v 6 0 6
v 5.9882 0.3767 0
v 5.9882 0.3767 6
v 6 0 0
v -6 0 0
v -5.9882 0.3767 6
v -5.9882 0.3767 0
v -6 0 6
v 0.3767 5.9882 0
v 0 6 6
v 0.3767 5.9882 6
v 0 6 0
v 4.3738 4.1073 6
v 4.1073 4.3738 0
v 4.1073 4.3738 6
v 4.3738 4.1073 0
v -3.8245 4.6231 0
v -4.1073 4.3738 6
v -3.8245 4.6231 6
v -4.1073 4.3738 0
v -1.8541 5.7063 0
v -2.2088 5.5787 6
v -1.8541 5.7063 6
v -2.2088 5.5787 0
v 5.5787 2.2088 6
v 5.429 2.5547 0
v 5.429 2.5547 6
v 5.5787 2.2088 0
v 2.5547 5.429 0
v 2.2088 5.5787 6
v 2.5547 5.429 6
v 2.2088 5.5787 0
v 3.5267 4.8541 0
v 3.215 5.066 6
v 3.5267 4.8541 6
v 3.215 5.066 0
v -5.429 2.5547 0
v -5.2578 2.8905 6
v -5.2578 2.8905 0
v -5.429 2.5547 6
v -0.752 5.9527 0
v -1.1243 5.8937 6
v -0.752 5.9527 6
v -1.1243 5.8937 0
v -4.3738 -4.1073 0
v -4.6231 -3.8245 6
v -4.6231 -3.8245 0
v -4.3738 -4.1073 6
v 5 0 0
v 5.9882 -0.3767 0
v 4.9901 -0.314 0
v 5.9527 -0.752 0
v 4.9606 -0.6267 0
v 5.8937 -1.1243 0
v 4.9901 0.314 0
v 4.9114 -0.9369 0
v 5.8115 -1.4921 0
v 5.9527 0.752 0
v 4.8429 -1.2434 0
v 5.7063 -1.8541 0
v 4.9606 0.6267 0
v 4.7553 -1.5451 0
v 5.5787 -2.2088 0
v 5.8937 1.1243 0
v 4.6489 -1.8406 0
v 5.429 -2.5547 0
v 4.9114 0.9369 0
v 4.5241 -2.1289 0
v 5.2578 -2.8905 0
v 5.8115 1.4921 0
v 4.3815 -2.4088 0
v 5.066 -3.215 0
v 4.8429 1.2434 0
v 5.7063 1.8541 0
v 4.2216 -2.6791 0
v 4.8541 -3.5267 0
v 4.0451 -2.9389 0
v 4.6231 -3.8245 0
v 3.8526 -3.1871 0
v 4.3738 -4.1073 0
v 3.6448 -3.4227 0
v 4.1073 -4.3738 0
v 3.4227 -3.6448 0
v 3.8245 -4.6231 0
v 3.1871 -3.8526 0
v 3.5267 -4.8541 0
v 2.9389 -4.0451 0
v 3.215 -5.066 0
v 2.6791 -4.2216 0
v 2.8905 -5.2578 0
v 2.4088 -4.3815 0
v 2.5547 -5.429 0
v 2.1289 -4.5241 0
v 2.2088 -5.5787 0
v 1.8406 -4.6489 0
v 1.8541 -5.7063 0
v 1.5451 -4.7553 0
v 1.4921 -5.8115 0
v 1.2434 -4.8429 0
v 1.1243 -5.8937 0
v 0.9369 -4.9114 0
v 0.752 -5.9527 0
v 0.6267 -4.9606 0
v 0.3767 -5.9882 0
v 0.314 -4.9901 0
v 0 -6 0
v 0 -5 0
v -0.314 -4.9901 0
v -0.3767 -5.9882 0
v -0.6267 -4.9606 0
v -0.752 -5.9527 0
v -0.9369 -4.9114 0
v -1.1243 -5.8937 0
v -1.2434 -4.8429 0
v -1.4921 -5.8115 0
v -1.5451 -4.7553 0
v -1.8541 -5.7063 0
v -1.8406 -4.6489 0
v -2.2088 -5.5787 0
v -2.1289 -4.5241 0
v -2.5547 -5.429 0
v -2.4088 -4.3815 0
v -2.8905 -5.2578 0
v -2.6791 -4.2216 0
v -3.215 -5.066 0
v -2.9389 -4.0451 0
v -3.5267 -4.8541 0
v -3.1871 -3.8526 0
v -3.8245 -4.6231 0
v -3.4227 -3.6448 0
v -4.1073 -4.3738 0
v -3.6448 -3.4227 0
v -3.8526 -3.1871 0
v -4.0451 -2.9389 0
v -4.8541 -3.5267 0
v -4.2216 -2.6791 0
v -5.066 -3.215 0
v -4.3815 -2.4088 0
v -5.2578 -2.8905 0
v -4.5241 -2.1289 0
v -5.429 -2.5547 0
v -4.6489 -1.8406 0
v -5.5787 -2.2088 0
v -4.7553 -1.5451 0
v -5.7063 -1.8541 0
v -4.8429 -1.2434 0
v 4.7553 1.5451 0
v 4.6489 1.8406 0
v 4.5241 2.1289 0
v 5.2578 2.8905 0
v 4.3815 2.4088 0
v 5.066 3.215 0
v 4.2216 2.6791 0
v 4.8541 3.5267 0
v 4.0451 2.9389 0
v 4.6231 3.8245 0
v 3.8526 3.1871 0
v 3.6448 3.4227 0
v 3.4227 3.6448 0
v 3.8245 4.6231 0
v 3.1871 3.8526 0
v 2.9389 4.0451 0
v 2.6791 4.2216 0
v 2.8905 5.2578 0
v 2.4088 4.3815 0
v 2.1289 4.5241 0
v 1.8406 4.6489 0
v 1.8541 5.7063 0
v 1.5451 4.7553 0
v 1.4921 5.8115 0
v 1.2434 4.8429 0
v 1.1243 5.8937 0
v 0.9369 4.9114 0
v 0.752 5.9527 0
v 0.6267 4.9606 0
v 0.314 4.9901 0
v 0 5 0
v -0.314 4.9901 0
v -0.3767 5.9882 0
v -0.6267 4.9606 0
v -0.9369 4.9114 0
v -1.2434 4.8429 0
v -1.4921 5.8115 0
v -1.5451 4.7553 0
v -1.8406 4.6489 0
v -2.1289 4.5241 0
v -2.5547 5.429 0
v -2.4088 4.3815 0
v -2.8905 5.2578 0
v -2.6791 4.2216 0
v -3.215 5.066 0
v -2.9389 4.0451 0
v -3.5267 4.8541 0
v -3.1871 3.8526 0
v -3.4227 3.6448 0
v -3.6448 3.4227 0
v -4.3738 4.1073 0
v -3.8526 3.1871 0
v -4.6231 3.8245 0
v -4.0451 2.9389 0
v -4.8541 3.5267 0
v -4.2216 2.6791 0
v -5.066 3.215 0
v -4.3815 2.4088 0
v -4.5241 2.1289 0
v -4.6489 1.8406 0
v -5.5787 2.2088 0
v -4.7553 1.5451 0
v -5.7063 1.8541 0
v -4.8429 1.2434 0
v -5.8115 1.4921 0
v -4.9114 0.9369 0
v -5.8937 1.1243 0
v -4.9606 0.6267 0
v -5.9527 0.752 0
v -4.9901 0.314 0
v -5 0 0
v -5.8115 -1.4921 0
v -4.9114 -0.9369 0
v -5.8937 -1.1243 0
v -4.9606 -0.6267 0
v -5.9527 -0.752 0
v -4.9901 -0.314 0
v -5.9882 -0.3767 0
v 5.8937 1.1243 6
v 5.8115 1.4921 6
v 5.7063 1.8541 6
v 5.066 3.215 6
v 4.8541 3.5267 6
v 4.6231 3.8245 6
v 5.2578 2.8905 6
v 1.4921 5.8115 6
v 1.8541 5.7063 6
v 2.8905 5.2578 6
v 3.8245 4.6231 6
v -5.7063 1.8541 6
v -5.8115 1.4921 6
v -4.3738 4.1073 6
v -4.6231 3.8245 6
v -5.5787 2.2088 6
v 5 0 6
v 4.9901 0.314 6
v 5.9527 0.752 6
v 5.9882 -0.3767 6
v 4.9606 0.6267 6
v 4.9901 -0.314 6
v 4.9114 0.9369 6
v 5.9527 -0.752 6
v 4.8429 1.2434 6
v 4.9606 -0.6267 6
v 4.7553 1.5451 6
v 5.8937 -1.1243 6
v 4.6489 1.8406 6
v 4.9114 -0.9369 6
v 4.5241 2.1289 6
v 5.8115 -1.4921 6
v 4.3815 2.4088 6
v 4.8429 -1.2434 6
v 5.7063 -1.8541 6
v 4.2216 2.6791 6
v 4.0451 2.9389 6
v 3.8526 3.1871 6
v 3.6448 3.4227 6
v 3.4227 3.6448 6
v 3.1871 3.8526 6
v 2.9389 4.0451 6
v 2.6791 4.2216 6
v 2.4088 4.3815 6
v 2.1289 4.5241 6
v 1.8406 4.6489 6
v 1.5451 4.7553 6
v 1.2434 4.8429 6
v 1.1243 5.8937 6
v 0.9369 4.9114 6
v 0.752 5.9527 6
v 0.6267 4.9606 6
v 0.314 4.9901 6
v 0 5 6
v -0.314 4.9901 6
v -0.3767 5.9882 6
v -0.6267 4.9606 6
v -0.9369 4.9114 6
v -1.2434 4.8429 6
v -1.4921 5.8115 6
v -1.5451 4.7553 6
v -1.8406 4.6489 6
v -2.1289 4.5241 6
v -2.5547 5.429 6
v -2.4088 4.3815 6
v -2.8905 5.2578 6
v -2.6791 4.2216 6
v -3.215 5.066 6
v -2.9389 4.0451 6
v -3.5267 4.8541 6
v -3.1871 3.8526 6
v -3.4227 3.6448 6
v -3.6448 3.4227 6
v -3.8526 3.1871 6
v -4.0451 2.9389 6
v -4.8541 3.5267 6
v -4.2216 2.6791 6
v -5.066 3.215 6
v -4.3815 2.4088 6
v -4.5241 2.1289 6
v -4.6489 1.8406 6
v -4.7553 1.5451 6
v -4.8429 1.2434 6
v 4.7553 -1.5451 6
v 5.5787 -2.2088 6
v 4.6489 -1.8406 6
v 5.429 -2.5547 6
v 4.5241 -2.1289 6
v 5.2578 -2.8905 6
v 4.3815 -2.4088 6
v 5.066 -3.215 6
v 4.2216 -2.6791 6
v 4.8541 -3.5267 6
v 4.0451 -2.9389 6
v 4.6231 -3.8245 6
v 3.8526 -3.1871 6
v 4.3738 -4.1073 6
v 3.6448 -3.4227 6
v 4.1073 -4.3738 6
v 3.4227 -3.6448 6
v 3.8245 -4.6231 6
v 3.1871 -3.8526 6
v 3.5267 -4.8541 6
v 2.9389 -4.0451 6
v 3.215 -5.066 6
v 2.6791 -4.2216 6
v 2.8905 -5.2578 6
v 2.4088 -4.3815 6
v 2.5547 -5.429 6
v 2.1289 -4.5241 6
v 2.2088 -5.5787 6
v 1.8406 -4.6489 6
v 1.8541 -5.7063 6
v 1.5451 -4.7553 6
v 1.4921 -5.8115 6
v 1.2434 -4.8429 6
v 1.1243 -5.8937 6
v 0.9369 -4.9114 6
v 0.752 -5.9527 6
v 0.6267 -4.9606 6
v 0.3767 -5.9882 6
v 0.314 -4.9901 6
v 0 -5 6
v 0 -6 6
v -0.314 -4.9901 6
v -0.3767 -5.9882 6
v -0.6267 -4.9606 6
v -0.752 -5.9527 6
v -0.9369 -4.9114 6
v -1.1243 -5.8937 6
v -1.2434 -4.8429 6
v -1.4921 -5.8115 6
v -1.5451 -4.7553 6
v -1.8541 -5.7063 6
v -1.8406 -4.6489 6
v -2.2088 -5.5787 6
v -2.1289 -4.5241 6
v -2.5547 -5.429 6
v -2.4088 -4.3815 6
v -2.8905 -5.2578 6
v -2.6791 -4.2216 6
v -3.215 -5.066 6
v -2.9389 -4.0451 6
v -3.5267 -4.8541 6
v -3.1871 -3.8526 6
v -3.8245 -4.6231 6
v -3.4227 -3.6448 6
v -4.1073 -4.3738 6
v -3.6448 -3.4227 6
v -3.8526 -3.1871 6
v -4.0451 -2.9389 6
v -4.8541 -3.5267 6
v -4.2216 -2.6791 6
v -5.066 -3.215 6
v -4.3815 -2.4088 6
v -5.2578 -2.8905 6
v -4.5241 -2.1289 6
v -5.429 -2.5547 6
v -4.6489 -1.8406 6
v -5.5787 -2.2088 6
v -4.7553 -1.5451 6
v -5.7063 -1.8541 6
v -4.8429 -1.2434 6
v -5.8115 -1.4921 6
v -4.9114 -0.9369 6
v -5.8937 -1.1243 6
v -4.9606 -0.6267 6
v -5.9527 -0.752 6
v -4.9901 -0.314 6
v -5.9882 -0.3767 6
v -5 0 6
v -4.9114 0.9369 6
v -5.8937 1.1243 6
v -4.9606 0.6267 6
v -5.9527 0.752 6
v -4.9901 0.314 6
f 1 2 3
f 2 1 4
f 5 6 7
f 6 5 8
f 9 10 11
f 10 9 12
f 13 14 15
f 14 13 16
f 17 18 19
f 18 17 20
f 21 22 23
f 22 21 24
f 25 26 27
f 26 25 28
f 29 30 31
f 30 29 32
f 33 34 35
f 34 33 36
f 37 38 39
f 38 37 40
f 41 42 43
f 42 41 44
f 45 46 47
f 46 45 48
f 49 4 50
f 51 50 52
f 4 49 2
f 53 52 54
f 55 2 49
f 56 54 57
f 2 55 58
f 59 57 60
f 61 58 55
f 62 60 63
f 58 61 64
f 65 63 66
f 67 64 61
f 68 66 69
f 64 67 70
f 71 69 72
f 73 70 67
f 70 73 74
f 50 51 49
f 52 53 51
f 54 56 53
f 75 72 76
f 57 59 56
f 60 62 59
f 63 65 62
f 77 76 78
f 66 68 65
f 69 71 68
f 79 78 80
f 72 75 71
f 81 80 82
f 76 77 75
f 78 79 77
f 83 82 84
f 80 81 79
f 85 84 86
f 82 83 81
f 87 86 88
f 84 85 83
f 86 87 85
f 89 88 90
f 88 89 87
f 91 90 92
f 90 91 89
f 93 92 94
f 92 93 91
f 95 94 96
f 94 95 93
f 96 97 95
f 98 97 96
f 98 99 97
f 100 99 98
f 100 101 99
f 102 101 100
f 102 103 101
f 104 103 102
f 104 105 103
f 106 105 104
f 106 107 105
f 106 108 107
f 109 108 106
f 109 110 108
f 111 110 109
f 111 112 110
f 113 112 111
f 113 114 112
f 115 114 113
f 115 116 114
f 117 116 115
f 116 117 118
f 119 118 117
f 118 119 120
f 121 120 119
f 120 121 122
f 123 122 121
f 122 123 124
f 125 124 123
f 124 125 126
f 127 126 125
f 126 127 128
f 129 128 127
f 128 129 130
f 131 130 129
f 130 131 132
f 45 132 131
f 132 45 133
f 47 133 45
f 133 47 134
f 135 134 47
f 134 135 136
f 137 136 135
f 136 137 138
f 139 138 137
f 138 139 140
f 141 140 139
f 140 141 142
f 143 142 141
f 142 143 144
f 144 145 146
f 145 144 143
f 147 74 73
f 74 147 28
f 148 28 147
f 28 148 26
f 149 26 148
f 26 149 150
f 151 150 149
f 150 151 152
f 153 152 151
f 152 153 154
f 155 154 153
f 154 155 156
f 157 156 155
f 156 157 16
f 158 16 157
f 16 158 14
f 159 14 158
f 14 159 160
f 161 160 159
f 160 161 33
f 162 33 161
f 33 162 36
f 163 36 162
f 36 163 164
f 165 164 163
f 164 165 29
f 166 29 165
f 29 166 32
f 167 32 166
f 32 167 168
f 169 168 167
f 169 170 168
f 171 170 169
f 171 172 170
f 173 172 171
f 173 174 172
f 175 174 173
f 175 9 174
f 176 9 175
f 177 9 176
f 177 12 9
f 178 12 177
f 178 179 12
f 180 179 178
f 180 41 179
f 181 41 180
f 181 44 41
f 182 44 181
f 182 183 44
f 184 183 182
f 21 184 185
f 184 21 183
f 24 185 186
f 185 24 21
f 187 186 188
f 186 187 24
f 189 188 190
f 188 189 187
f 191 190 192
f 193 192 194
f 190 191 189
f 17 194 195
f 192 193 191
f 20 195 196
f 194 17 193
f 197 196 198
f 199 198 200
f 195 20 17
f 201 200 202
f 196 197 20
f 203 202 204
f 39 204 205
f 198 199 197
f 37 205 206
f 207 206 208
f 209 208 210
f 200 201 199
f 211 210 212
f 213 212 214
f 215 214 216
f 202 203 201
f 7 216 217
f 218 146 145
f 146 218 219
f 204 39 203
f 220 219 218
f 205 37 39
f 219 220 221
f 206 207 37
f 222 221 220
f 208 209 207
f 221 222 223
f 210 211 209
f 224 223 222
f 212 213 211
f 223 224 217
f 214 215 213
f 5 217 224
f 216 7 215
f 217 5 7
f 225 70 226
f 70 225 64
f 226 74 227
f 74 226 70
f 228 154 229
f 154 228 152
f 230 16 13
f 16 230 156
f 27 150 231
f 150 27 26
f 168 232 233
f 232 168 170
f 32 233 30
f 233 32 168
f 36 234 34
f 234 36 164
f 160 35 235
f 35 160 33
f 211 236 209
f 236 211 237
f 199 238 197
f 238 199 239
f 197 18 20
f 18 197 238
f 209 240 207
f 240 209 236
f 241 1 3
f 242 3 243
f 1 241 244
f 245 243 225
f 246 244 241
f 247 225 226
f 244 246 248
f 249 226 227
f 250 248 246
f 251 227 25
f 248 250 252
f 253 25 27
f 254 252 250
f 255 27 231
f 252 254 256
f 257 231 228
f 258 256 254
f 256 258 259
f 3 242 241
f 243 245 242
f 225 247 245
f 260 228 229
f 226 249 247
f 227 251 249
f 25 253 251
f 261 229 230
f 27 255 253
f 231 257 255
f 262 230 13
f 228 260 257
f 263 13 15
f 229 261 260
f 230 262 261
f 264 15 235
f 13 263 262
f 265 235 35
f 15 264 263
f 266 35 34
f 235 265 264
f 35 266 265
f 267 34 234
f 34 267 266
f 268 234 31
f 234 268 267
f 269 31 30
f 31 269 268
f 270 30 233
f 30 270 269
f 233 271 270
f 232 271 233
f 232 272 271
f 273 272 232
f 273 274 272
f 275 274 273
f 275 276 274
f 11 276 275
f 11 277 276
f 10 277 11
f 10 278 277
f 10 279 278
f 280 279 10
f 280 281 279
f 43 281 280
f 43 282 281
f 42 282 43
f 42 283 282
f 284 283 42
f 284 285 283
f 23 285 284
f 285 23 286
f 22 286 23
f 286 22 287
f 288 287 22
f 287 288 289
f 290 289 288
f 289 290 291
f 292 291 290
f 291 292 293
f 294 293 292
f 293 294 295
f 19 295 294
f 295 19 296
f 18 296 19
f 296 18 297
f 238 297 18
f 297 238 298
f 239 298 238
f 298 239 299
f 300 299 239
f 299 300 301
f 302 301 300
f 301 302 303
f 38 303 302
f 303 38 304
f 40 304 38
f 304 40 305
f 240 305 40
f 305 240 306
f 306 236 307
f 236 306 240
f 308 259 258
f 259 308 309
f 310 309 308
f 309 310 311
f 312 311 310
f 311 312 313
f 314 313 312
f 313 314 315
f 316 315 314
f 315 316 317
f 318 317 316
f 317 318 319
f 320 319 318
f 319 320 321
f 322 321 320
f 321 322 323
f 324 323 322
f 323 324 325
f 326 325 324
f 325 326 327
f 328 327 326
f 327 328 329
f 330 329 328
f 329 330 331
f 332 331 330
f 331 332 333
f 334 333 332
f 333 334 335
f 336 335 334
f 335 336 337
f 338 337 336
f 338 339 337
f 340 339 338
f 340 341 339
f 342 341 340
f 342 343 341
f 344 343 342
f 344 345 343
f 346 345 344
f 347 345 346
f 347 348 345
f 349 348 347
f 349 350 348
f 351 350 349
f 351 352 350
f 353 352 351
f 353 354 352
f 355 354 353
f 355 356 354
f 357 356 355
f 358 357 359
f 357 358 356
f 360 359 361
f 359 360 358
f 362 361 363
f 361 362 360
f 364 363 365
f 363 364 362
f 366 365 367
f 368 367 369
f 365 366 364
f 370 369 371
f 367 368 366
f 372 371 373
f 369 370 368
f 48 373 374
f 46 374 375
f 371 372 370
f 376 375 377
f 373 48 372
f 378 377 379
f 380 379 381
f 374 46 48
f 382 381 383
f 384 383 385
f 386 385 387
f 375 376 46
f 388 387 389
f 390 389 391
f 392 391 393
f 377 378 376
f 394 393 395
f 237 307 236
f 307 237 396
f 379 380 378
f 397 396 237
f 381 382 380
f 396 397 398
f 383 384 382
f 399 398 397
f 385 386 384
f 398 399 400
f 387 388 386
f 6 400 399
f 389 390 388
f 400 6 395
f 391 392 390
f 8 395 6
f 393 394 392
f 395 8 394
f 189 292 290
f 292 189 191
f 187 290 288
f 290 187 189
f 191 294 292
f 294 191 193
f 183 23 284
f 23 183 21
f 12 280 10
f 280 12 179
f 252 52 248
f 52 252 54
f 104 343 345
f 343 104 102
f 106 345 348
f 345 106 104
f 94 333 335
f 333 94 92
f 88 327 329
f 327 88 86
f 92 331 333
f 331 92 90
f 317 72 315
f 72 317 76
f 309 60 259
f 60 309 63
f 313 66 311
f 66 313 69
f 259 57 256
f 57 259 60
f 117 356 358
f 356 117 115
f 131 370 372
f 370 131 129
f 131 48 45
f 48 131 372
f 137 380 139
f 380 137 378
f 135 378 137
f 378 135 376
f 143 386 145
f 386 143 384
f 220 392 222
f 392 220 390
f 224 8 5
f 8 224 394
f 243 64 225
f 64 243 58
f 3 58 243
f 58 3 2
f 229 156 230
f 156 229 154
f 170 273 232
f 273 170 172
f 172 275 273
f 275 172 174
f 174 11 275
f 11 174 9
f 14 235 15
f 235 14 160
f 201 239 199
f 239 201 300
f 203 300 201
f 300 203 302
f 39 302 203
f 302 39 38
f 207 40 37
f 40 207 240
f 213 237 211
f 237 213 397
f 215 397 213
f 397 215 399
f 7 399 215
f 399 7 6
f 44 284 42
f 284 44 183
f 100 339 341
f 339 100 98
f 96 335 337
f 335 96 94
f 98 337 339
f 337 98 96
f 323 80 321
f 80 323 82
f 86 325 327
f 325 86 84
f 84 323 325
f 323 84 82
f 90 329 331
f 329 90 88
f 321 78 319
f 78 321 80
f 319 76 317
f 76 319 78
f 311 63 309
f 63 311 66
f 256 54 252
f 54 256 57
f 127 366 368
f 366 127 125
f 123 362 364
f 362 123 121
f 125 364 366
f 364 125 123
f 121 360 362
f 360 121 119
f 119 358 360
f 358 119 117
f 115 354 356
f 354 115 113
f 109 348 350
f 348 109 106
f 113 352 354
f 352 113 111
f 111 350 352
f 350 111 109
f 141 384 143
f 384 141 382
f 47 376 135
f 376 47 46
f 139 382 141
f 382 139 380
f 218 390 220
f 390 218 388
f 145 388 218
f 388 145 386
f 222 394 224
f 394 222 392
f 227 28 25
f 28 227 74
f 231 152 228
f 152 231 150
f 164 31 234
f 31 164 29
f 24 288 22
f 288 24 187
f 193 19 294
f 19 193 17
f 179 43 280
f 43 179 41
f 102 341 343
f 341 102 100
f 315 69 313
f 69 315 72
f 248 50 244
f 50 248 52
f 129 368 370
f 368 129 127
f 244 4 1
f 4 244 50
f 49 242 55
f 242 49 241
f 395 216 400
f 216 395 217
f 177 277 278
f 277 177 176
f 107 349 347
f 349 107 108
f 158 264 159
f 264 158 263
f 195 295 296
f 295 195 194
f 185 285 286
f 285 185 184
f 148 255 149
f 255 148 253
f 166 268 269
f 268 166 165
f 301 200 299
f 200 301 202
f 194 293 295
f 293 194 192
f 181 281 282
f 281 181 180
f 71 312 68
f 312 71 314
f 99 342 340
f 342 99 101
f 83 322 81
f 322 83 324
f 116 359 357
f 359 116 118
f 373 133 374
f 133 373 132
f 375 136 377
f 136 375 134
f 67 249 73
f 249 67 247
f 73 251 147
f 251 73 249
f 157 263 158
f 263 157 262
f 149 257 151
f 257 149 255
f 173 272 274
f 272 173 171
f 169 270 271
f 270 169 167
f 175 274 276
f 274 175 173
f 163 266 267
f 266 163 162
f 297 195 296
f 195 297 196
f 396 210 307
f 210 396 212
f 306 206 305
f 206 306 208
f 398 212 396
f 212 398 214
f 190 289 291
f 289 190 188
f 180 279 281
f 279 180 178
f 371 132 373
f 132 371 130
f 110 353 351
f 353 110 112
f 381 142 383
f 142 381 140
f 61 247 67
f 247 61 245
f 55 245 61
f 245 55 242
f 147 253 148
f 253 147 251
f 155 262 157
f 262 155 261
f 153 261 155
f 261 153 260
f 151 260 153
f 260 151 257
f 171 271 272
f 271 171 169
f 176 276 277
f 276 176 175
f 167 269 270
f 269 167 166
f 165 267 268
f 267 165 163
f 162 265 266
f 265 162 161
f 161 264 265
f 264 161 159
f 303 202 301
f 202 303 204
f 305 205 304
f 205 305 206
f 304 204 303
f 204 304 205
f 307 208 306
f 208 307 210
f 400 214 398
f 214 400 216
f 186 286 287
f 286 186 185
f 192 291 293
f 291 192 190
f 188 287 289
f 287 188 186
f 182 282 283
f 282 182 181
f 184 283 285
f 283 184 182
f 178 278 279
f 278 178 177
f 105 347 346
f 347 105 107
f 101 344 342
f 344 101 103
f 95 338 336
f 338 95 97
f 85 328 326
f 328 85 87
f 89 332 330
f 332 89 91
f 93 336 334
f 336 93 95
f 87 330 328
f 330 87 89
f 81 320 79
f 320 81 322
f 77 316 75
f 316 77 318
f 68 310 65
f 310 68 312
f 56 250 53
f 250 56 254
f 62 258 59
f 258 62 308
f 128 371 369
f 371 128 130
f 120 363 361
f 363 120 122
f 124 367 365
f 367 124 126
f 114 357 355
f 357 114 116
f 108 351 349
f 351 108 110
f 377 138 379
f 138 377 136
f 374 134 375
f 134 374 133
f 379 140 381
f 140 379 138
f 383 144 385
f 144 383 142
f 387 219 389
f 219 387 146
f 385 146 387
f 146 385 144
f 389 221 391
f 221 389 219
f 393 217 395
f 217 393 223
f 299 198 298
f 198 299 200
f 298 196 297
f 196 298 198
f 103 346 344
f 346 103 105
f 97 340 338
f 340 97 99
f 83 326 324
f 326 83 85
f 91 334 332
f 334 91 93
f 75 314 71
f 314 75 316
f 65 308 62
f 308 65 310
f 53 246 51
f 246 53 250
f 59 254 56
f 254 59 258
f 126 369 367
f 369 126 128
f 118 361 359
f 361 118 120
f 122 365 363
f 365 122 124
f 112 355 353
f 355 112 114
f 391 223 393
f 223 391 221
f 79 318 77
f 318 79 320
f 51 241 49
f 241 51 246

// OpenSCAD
diameter      = 32;
stem_height   = 6;
concave_depth = 2.5;

difference() {
  cylinder(h=stem_height, r=6, $fn=100);
  cylinder(h=stem_height, r=5, $fn=100);
};
